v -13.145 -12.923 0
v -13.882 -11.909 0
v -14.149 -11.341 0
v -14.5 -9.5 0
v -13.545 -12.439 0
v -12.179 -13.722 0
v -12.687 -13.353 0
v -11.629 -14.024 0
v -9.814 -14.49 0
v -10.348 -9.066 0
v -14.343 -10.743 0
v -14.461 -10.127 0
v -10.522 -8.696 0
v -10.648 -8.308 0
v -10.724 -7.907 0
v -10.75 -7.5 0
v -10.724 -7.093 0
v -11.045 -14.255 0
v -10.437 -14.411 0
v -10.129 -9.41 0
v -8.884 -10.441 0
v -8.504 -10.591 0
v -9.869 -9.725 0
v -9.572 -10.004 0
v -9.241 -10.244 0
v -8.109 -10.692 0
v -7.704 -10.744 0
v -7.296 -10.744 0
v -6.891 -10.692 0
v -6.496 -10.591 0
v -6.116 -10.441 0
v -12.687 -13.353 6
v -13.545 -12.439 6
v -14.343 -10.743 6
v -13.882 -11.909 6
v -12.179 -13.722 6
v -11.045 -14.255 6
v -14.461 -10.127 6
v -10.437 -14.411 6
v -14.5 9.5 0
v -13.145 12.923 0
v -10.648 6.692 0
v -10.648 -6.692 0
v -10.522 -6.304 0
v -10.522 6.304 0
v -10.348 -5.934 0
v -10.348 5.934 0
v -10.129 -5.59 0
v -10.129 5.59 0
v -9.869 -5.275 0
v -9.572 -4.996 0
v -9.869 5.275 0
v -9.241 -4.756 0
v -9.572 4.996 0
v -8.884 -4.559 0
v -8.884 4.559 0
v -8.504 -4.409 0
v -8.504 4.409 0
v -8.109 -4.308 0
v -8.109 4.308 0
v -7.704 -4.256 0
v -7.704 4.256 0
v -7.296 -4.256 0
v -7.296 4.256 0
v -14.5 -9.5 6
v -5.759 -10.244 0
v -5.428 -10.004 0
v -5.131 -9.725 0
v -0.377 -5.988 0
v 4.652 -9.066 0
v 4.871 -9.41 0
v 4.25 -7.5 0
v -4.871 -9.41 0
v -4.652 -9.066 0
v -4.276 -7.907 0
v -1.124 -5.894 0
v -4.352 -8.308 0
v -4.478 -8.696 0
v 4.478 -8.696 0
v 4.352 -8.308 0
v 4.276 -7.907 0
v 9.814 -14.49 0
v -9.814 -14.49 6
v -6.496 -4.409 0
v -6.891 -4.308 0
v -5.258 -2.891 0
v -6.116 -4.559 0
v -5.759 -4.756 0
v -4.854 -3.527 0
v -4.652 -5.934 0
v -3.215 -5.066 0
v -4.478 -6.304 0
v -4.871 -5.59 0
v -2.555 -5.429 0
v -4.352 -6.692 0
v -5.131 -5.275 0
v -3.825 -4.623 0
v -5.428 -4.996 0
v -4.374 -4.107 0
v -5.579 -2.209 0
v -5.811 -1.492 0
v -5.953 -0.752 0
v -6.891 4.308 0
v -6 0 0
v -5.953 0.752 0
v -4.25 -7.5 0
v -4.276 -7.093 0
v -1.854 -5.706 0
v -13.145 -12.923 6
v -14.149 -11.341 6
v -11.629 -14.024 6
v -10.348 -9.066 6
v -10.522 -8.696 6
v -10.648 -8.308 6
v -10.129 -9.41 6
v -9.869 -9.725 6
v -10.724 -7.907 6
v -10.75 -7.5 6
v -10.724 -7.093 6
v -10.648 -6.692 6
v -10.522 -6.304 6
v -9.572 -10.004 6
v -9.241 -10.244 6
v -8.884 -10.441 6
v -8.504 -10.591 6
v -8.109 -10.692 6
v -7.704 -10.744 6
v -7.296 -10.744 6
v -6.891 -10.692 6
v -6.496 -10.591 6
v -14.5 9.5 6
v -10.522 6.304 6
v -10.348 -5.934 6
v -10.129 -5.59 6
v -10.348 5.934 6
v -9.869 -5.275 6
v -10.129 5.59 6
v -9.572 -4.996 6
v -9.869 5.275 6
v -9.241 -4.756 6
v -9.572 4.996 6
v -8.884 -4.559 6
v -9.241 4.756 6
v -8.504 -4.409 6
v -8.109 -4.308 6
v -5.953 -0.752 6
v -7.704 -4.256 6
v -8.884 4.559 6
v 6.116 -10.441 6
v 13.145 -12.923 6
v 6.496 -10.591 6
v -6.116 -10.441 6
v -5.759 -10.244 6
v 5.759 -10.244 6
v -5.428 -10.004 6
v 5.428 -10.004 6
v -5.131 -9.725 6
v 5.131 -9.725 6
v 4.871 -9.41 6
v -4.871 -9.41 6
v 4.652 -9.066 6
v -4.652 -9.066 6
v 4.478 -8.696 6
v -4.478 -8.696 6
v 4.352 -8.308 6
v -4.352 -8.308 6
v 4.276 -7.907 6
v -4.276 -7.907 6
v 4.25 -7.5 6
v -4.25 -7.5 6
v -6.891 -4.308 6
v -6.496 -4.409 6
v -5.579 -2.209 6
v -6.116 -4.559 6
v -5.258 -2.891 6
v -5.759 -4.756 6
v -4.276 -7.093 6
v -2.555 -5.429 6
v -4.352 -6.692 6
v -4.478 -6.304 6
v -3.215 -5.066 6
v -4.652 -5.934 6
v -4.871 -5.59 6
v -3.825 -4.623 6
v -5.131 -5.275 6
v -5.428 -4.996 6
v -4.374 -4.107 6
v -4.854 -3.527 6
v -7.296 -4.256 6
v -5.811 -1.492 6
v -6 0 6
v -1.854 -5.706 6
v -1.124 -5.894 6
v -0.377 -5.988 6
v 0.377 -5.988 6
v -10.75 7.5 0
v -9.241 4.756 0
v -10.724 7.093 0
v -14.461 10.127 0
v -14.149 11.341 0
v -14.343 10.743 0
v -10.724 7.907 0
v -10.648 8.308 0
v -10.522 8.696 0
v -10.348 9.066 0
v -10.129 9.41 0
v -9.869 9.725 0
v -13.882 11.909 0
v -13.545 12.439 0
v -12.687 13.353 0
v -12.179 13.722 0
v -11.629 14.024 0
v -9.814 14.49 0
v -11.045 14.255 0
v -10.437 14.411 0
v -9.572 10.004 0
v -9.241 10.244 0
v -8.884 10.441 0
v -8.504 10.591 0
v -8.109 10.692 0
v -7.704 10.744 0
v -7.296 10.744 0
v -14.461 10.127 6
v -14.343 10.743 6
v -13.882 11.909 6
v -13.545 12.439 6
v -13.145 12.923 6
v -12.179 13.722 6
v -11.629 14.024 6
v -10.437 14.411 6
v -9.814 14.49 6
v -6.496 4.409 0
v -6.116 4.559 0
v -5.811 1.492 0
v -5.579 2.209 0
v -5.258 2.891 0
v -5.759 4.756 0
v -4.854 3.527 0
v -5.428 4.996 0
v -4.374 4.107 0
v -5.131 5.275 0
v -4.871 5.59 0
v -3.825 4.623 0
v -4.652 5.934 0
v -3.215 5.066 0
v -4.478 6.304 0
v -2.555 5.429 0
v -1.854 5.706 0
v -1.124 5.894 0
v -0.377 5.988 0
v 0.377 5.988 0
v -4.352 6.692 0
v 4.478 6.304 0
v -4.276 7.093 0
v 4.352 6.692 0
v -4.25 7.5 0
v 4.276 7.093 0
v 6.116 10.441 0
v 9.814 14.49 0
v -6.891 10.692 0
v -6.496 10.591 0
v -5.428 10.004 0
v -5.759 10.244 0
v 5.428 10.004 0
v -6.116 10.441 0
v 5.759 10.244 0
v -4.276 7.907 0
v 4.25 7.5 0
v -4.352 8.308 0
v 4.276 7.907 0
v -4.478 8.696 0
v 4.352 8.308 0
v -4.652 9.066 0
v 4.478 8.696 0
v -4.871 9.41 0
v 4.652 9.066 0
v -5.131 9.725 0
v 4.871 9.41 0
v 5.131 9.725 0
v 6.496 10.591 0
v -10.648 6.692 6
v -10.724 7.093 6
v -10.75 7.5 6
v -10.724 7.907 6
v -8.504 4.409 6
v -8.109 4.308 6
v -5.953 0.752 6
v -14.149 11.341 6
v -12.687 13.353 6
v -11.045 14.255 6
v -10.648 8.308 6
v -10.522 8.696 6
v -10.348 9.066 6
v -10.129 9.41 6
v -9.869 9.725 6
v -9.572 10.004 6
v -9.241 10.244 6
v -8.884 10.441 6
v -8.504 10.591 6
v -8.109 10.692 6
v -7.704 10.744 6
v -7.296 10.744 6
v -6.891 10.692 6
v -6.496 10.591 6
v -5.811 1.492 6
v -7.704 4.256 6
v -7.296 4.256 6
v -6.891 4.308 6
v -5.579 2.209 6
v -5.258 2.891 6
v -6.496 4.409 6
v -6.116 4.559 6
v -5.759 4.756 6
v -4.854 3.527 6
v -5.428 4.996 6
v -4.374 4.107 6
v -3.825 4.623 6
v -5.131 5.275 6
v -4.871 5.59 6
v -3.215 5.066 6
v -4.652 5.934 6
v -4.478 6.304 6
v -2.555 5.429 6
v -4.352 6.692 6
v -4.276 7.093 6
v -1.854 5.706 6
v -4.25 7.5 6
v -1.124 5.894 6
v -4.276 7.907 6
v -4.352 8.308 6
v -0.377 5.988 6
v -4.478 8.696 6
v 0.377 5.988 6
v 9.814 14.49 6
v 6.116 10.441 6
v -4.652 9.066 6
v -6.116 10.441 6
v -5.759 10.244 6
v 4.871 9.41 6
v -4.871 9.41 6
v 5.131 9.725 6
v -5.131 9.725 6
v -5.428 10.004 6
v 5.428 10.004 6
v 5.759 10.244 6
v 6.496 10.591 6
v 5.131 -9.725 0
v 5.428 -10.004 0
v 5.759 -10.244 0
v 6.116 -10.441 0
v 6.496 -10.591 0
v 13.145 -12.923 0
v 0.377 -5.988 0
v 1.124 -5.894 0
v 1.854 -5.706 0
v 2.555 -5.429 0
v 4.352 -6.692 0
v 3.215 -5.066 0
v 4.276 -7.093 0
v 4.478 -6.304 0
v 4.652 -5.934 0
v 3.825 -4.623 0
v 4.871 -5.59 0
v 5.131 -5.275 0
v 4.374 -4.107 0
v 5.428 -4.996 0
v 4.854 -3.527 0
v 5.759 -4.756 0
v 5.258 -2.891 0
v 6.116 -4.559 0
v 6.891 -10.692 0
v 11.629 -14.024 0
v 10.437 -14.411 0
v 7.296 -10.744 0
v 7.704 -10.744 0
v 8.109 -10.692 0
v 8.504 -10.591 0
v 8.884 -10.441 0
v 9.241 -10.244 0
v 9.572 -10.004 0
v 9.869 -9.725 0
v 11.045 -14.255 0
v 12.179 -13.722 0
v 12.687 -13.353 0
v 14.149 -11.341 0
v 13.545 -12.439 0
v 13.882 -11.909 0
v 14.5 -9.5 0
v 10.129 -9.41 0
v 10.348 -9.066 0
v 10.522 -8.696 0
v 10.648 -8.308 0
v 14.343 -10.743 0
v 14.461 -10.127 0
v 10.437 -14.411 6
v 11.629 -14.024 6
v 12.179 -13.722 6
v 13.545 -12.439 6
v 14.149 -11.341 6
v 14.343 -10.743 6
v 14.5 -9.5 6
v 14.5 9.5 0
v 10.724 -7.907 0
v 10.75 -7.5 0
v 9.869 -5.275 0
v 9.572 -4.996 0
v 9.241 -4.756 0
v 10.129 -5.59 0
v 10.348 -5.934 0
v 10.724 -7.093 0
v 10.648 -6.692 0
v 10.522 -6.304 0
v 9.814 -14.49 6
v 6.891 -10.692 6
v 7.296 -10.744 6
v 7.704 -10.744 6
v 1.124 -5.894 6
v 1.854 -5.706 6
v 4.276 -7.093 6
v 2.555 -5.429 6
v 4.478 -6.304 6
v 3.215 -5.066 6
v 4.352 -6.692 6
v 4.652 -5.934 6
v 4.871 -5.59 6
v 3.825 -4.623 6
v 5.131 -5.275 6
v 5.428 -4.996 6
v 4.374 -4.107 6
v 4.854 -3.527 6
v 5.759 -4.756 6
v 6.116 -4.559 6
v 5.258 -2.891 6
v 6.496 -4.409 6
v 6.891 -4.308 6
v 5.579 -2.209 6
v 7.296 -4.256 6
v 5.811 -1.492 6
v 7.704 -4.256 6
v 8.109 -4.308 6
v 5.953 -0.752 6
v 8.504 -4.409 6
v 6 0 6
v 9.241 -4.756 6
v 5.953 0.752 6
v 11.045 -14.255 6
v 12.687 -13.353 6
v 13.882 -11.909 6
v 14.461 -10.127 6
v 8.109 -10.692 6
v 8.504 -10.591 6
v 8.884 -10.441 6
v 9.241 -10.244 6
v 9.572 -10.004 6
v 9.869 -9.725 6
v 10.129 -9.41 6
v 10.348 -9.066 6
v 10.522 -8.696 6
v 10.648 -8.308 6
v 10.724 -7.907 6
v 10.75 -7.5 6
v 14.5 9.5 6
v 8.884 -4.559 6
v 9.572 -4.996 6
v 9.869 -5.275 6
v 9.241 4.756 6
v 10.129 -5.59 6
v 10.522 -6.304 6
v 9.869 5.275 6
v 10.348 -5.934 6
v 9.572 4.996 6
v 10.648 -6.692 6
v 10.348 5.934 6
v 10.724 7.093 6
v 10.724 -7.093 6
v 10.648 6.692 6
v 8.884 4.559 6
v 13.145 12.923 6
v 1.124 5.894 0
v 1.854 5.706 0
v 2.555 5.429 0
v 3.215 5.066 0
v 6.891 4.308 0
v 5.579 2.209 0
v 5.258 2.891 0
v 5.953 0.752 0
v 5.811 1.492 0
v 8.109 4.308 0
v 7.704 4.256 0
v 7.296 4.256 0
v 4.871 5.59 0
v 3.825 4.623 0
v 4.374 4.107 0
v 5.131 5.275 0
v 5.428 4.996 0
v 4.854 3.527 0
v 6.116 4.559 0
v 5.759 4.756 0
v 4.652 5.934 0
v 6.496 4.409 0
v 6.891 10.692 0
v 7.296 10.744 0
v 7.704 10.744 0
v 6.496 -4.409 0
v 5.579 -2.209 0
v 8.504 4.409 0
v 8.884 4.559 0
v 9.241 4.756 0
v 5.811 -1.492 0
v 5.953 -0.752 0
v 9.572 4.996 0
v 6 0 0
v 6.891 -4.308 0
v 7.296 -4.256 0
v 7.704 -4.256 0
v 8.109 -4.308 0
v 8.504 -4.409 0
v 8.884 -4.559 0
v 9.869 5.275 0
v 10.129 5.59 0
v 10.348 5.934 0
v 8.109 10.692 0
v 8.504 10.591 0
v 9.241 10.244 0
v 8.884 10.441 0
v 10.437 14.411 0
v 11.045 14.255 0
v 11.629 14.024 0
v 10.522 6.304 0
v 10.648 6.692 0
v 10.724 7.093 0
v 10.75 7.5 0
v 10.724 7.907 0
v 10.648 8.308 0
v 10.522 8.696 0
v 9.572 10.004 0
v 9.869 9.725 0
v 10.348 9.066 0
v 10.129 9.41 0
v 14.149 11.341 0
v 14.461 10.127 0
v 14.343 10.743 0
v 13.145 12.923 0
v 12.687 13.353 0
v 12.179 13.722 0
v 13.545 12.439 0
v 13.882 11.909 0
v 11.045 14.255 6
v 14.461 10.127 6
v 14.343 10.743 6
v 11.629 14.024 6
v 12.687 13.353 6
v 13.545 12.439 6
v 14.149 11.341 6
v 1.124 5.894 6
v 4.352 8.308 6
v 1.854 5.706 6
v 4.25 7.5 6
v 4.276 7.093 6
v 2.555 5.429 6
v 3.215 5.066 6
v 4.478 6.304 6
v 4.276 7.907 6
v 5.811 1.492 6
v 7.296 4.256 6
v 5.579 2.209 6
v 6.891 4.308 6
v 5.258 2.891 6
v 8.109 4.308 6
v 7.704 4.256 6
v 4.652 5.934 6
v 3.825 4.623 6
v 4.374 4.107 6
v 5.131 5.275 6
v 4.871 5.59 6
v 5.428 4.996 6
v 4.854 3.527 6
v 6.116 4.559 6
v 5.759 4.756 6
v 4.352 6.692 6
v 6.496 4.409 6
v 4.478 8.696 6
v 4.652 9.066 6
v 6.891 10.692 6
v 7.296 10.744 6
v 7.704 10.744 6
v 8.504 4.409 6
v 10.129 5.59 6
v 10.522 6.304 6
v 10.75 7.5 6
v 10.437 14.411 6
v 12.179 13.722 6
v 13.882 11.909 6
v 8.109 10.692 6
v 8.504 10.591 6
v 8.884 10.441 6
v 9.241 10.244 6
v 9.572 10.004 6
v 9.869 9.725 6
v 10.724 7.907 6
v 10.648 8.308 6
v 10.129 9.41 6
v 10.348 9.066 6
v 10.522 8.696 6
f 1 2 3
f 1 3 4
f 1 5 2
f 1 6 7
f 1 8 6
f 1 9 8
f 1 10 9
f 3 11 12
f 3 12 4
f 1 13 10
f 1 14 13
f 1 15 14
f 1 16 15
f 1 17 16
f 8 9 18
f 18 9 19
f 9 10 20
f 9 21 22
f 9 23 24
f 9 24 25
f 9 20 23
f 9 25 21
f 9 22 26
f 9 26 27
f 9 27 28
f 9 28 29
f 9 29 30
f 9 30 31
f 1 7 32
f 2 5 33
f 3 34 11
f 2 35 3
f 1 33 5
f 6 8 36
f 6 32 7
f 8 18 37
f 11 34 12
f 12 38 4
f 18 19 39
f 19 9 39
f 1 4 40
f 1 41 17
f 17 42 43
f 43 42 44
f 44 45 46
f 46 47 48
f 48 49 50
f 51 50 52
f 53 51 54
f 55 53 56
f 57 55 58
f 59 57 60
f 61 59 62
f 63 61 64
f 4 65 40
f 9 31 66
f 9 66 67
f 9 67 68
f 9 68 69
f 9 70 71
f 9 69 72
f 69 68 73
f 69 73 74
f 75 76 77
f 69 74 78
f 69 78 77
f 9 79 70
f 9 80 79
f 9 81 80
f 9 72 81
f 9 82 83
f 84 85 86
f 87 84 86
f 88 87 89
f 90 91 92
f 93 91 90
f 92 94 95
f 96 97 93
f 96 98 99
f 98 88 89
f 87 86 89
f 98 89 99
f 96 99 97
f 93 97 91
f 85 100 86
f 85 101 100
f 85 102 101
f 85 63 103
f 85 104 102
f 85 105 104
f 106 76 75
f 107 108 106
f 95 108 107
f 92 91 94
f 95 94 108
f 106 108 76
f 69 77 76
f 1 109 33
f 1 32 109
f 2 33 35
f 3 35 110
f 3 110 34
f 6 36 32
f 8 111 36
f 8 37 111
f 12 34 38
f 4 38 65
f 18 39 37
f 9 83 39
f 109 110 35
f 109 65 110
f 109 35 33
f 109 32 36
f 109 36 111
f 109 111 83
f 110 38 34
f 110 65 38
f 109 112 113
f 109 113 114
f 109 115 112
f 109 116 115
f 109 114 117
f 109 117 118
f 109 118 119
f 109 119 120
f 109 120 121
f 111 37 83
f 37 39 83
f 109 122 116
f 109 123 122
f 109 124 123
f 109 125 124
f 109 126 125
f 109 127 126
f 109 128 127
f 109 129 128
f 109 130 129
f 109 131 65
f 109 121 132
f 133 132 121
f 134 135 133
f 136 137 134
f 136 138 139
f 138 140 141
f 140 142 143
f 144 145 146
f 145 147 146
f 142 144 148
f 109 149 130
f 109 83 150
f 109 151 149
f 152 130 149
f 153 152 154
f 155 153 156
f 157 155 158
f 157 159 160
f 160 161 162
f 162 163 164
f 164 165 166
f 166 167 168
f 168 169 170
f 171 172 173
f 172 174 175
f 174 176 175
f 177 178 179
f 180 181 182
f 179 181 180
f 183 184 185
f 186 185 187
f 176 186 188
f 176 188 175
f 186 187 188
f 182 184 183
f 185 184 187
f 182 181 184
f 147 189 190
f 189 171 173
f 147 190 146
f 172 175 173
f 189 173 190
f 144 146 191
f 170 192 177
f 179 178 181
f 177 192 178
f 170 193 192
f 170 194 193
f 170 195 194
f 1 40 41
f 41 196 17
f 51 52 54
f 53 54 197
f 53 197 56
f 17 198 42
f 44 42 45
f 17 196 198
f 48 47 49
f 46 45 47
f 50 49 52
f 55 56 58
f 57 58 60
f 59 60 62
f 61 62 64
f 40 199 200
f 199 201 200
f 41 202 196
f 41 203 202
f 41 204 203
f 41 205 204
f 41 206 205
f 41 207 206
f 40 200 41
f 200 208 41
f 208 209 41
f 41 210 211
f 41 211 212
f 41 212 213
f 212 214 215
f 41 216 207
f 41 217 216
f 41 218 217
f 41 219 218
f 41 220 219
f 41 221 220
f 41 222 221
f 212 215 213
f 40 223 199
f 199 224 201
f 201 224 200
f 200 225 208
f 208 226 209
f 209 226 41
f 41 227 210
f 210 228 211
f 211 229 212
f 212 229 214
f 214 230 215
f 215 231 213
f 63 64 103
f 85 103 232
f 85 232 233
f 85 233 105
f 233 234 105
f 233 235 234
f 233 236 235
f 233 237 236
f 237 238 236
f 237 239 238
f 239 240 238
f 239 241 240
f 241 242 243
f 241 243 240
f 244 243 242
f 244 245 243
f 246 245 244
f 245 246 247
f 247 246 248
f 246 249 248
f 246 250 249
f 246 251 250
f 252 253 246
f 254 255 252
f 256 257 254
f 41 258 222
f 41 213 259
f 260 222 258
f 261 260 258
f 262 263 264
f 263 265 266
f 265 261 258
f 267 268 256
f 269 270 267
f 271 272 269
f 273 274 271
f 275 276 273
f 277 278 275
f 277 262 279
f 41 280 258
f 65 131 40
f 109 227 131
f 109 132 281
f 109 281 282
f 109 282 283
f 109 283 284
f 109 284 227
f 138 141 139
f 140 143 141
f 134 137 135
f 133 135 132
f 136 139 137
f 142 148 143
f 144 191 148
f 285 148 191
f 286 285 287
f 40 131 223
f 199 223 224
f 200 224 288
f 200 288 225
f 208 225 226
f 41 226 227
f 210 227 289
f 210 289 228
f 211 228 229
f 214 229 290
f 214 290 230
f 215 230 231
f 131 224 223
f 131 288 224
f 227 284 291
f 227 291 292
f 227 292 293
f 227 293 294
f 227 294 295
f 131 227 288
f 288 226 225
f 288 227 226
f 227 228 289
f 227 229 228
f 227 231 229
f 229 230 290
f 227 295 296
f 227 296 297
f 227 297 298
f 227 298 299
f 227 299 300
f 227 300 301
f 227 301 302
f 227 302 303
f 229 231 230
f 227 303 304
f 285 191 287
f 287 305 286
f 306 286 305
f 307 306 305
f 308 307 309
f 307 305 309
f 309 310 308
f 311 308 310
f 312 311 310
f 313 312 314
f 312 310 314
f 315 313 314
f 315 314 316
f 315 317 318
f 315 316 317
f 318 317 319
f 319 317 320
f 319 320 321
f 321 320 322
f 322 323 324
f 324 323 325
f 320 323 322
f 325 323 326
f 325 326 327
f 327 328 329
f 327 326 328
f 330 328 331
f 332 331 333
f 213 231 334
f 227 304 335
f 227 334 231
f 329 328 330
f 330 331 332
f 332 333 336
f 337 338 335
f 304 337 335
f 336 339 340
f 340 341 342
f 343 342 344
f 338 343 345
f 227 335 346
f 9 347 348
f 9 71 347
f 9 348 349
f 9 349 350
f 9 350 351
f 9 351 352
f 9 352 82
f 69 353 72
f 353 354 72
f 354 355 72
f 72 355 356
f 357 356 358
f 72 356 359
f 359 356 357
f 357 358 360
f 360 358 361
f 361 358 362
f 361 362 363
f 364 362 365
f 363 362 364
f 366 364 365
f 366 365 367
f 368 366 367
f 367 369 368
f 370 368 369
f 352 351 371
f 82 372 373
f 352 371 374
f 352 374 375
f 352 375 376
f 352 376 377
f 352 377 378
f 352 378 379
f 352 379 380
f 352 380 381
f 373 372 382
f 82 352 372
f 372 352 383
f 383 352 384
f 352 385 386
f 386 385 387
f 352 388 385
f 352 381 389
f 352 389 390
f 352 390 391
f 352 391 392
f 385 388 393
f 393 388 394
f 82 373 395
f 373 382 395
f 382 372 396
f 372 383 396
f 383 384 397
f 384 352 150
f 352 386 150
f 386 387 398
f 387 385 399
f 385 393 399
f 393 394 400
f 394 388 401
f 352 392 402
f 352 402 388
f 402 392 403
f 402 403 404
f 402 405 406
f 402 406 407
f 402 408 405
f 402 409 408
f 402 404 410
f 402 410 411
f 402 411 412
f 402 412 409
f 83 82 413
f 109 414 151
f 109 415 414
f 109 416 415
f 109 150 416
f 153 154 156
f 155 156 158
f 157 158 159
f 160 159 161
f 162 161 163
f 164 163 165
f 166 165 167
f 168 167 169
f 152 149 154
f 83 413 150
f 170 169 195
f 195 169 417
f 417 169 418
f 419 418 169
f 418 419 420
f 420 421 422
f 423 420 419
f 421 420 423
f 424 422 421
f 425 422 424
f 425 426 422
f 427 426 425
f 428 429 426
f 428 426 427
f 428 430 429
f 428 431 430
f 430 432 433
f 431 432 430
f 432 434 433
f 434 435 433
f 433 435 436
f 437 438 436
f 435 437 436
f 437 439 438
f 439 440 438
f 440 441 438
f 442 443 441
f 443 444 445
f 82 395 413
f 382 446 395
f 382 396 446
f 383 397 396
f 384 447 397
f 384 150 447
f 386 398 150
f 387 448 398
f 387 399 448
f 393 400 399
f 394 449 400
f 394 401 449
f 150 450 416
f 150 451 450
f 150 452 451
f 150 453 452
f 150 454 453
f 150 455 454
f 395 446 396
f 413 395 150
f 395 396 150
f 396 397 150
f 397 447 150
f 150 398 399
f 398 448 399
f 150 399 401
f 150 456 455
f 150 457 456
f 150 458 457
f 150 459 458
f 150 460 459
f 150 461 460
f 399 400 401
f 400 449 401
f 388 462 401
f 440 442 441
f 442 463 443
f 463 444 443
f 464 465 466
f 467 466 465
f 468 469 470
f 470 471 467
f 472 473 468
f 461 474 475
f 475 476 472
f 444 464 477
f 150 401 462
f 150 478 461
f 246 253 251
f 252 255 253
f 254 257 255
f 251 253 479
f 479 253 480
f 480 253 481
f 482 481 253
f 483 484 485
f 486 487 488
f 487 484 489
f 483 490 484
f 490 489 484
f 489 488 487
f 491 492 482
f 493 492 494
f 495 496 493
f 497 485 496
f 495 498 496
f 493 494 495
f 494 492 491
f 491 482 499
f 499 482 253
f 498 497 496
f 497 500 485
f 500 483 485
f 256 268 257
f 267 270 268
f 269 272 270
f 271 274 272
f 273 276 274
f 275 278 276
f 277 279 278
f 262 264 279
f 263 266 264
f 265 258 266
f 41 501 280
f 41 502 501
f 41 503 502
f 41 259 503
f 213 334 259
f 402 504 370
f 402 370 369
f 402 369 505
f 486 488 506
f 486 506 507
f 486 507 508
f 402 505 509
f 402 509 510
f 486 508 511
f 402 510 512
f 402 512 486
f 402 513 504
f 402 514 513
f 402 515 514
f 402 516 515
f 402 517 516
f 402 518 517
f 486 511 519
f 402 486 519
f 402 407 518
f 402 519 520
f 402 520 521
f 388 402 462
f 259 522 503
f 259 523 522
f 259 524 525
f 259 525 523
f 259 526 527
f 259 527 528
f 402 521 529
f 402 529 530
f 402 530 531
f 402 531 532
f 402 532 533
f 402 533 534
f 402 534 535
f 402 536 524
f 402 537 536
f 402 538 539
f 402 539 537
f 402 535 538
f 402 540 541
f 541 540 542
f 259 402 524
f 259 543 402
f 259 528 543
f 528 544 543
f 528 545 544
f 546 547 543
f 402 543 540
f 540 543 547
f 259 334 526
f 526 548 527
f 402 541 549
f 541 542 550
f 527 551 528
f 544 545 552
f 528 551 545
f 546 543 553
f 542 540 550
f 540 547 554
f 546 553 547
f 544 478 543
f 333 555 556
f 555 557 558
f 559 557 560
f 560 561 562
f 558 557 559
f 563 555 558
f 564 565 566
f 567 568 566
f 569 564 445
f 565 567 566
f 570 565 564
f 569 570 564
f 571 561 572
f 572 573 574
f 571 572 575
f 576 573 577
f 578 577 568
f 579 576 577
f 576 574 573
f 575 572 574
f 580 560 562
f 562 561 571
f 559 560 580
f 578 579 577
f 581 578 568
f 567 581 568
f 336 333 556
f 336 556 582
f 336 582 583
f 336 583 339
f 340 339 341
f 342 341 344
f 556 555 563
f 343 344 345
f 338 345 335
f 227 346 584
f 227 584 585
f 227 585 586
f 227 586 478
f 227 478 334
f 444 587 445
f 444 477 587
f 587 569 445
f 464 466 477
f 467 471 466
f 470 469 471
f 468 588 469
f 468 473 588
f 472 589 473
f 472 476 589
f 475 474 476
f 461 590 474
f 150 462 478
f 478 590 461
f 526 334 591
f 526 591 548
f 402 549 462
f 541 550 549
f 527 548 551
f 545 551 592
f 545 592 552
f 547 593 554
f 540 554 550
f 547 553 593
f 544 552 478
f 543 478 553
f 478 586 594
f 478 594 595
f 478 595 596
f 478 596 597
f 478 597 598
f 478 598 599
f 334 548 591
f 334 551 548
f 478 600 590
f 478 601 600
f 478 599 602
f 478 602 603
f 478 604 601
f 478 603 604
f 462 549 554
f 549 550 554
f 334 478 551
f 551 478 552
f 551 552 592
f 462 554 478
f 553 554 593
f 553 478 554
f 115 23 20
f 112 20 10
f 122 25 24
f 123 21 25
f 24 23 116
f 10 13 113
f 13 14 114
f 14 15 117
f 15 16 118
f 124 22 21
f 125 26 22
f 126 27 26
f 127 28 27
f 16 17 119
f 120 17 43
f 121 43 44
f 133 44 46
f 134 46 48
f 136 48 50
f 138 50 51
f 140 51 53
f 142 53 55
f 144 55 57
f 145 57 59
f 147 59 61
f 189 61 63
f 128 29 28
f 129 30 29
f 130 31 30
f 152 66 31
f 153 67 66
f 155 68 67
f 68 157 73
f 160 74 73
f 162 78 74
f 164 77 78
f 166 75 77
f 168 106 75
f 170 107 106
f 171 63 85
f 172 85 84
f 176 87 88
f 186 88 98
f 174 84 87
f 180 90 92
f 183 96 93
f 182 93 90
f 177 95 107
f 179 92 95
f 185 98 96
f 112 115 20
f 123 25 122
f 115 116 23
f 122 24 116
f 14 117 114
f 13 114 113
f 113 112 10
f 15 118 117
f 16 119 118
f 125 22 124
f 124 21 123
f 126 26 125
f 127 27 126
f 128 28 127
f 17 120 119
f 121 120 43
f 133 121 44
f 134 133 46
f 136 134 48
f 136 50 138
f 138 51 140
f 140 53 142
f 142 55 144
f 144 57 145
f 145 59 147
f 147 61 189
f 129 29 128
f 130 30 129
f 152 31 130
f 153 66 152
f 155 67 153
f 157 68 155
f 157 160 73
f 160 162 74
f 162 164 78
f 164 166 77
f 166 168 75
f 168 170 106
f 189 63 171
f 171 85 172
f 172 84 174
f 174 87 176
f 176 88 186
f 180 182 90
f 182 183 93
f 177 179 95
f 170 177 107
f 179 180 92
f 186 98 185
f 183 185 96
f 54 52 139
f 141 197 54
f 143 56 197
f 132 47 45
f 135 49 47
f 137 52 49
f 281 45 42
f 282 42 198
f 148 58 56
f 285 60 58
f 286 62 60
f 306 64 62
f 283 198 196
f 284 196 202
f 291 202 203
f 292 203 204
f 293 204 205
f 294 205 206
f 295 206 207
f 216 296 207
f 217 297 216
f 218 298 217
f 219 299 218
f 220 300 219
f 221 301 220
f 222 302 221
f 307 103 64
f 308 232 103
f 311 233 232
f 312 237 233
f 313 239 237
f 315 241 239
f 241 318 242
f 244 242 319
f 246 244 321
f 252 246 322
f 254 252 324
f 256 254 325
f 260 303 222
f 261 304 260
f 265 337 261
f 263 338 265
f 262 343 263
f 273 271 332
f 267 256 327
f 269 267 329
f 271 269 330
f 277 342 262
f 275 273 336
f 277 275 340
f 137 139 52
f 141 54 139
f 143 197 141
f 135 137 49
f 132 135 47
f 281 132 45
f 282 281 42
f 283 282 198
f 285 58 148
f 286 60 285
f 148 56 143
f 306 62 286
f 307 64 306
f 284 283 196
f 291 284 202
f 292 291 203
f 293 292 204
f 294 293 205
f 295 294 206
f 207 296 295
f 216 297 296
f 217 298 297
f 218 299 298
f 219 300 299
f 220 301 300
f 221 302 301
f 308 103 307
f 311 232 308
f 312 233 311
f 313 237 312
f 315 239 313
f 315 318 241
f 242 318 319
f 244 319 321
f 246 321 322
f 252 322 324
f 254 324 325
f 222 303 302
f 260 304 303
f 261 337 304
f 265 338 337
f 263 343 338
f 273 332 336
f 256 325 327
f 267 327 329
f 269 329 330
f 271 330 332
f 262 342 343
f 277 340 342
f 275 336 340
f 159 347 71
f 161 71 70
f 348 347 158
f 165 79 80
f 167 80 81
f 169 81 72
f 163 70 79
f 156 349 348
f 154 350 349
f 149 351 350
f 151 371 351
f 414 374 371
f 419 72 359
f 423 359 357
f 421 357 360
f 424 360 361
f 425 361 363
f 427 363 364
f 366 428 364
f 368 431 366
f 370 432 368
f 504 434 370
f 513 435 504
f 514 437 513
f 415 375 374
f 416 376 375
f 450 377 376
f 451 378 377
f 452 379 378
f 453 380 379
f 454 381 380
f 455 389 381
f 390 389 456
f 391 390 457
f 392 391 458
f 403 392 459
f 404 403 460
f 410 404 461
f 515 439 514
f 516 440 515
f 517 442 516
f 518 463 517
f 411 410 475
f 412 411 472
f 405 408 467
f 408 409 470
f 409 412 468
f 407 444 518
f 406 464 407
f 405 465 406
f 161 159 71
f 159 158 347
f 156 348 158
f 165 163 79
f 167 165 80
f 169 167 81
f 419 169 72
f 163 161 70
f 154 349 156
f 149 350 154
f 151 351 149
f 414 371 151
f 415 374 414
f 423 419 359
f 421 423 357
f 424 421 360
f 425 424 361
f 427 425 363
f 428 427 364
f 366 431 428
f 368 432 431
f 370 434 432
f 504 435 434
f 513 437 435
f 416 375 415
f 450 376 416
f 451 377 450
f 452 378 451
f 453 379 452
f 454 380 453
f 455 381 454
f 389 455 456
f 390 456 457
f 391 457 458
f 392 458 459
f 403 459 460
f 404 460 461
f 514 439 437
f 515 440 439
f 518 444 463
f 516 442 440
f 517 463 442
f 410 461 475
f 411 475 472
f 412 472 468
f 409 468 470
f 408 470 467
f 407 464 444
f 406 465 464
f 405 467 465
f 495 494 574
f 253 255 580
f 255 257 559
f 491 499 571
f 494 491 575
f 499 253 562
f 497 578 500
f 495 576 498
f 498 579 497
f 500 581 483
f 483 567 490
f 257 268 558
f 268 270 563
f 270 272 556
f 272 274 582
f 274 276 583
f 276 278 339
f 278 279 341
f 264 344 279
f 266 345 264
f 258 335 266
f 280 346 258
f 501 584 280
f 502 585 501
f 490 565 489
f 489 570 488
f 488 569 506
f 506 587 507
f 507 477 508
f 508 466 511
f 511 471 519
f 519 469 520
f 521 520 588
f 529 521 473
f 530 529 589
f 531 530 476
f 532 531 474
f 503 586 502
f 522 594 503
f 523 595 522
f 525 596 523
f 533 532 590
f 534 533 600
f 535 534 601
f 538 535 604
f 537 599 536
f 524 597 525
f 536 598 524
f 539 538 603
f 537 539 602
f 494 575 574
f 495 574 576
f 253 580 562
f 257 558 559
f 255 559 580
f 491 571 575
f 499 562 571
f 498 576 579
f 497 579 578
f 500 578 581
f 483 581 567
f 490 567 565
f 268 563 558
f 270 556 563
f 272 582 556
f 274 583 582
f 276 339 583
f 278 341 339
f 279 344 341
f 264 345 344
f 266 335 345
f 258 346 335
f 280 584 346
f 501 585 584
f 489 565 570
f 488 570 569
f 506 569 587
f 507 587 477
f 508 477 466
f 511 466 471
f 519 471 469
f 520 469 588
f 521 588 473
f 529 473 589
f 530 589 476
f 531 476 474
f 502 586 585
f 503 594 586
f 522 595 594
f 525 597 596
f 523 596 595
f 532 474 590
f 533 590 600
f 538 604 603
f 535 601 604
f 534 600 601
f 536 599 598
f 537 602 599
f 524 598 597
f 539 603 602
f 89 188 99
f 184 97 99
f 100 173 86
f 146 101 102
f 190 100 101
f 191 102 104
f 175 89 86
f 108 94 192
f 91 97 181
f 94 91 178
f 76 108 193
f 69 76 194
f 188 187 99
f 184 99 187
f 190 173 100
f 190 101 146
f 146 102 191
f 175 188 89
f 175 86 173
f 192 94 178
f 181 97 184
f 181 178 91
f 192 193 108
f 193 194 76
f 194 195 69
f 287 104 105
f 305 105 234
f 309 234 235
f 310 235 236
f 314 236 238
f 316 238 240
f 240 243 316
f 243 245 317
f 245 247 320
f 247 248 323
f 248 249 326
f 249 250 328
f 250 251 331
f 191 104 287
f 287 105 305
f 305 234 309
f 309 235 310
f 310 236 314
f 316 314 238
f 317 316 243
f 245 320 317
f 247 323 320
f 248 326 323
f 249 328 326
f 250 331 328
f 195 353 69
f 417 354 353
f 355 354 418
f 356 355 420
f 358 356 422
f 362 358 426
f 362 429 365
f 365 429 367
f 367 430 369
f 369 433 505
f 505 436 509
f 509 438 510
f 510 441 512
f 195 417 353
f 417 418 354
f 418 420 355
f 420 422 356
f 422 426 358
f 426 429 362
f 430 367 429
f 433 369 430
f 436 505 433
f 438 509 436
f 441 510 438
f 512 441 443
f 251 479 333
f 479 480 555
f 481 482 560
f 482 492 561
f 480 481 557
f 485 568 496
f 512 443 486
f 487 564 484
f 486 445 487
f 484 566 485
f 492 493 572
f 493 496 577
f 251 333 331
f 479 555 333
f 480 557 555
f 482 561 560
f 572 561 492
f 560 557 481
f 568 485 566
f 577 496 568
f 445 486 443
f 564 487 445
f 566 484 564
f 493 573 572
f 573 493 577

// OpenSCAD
$fn = 50;

difference() {
	union() {
		hull() {
			translate(v = [-9.5, 9.5, 0]) {
				cylinder(h = 6, r = 5);
			}
			translate(v = [9.5, 9.5, 0]) {
				cylinder(h = 6, r = 5);
			}
			translate(v = [-9.5, -9.5, 0]) {
				cylinder(h = 6, r = 5);
			}
			translate(v = [9.5, -9.5, 0]) {
				cylinder(h = 6, r = 5);
			}
		}
	}
	union() {
		translate(v = [-7.5, -7.5, -100.0]) {
			cylinder(h = 200, r = 3.25);
		}
		translate(v = [-7.5, 7.5, -100.0]) {
			cylinder(h = 200, r = 3.25);
		}
		translate(v = [7.5, -7.5, -100.0]) {
			cylinder(h = 200, r = 3.25);
		}
		translate(v = [7.5, 7.5, -100.0]) {
			cylinder(h = 200, r = 3.25);
		}
		translate(v = [-7.5, -7.5, -100.0]) {
			cylinder(h = 200, r = 1.8);
		}
		translate(v = [-7.5, 7.5, -100.0]) {
			cylinder(h = 200, r = 1.8);
		}
		translate(v = [7.5, -7.5, -100.0]) {
			cylinder(h = 200, r = 1.8);
		}
		translate(v = [7.5, 7.5, -100.0]) {
			cylinder(h = 200, r = 1.8);
		}
		cylinder(h = 6, r = 6.0);
	}
}
